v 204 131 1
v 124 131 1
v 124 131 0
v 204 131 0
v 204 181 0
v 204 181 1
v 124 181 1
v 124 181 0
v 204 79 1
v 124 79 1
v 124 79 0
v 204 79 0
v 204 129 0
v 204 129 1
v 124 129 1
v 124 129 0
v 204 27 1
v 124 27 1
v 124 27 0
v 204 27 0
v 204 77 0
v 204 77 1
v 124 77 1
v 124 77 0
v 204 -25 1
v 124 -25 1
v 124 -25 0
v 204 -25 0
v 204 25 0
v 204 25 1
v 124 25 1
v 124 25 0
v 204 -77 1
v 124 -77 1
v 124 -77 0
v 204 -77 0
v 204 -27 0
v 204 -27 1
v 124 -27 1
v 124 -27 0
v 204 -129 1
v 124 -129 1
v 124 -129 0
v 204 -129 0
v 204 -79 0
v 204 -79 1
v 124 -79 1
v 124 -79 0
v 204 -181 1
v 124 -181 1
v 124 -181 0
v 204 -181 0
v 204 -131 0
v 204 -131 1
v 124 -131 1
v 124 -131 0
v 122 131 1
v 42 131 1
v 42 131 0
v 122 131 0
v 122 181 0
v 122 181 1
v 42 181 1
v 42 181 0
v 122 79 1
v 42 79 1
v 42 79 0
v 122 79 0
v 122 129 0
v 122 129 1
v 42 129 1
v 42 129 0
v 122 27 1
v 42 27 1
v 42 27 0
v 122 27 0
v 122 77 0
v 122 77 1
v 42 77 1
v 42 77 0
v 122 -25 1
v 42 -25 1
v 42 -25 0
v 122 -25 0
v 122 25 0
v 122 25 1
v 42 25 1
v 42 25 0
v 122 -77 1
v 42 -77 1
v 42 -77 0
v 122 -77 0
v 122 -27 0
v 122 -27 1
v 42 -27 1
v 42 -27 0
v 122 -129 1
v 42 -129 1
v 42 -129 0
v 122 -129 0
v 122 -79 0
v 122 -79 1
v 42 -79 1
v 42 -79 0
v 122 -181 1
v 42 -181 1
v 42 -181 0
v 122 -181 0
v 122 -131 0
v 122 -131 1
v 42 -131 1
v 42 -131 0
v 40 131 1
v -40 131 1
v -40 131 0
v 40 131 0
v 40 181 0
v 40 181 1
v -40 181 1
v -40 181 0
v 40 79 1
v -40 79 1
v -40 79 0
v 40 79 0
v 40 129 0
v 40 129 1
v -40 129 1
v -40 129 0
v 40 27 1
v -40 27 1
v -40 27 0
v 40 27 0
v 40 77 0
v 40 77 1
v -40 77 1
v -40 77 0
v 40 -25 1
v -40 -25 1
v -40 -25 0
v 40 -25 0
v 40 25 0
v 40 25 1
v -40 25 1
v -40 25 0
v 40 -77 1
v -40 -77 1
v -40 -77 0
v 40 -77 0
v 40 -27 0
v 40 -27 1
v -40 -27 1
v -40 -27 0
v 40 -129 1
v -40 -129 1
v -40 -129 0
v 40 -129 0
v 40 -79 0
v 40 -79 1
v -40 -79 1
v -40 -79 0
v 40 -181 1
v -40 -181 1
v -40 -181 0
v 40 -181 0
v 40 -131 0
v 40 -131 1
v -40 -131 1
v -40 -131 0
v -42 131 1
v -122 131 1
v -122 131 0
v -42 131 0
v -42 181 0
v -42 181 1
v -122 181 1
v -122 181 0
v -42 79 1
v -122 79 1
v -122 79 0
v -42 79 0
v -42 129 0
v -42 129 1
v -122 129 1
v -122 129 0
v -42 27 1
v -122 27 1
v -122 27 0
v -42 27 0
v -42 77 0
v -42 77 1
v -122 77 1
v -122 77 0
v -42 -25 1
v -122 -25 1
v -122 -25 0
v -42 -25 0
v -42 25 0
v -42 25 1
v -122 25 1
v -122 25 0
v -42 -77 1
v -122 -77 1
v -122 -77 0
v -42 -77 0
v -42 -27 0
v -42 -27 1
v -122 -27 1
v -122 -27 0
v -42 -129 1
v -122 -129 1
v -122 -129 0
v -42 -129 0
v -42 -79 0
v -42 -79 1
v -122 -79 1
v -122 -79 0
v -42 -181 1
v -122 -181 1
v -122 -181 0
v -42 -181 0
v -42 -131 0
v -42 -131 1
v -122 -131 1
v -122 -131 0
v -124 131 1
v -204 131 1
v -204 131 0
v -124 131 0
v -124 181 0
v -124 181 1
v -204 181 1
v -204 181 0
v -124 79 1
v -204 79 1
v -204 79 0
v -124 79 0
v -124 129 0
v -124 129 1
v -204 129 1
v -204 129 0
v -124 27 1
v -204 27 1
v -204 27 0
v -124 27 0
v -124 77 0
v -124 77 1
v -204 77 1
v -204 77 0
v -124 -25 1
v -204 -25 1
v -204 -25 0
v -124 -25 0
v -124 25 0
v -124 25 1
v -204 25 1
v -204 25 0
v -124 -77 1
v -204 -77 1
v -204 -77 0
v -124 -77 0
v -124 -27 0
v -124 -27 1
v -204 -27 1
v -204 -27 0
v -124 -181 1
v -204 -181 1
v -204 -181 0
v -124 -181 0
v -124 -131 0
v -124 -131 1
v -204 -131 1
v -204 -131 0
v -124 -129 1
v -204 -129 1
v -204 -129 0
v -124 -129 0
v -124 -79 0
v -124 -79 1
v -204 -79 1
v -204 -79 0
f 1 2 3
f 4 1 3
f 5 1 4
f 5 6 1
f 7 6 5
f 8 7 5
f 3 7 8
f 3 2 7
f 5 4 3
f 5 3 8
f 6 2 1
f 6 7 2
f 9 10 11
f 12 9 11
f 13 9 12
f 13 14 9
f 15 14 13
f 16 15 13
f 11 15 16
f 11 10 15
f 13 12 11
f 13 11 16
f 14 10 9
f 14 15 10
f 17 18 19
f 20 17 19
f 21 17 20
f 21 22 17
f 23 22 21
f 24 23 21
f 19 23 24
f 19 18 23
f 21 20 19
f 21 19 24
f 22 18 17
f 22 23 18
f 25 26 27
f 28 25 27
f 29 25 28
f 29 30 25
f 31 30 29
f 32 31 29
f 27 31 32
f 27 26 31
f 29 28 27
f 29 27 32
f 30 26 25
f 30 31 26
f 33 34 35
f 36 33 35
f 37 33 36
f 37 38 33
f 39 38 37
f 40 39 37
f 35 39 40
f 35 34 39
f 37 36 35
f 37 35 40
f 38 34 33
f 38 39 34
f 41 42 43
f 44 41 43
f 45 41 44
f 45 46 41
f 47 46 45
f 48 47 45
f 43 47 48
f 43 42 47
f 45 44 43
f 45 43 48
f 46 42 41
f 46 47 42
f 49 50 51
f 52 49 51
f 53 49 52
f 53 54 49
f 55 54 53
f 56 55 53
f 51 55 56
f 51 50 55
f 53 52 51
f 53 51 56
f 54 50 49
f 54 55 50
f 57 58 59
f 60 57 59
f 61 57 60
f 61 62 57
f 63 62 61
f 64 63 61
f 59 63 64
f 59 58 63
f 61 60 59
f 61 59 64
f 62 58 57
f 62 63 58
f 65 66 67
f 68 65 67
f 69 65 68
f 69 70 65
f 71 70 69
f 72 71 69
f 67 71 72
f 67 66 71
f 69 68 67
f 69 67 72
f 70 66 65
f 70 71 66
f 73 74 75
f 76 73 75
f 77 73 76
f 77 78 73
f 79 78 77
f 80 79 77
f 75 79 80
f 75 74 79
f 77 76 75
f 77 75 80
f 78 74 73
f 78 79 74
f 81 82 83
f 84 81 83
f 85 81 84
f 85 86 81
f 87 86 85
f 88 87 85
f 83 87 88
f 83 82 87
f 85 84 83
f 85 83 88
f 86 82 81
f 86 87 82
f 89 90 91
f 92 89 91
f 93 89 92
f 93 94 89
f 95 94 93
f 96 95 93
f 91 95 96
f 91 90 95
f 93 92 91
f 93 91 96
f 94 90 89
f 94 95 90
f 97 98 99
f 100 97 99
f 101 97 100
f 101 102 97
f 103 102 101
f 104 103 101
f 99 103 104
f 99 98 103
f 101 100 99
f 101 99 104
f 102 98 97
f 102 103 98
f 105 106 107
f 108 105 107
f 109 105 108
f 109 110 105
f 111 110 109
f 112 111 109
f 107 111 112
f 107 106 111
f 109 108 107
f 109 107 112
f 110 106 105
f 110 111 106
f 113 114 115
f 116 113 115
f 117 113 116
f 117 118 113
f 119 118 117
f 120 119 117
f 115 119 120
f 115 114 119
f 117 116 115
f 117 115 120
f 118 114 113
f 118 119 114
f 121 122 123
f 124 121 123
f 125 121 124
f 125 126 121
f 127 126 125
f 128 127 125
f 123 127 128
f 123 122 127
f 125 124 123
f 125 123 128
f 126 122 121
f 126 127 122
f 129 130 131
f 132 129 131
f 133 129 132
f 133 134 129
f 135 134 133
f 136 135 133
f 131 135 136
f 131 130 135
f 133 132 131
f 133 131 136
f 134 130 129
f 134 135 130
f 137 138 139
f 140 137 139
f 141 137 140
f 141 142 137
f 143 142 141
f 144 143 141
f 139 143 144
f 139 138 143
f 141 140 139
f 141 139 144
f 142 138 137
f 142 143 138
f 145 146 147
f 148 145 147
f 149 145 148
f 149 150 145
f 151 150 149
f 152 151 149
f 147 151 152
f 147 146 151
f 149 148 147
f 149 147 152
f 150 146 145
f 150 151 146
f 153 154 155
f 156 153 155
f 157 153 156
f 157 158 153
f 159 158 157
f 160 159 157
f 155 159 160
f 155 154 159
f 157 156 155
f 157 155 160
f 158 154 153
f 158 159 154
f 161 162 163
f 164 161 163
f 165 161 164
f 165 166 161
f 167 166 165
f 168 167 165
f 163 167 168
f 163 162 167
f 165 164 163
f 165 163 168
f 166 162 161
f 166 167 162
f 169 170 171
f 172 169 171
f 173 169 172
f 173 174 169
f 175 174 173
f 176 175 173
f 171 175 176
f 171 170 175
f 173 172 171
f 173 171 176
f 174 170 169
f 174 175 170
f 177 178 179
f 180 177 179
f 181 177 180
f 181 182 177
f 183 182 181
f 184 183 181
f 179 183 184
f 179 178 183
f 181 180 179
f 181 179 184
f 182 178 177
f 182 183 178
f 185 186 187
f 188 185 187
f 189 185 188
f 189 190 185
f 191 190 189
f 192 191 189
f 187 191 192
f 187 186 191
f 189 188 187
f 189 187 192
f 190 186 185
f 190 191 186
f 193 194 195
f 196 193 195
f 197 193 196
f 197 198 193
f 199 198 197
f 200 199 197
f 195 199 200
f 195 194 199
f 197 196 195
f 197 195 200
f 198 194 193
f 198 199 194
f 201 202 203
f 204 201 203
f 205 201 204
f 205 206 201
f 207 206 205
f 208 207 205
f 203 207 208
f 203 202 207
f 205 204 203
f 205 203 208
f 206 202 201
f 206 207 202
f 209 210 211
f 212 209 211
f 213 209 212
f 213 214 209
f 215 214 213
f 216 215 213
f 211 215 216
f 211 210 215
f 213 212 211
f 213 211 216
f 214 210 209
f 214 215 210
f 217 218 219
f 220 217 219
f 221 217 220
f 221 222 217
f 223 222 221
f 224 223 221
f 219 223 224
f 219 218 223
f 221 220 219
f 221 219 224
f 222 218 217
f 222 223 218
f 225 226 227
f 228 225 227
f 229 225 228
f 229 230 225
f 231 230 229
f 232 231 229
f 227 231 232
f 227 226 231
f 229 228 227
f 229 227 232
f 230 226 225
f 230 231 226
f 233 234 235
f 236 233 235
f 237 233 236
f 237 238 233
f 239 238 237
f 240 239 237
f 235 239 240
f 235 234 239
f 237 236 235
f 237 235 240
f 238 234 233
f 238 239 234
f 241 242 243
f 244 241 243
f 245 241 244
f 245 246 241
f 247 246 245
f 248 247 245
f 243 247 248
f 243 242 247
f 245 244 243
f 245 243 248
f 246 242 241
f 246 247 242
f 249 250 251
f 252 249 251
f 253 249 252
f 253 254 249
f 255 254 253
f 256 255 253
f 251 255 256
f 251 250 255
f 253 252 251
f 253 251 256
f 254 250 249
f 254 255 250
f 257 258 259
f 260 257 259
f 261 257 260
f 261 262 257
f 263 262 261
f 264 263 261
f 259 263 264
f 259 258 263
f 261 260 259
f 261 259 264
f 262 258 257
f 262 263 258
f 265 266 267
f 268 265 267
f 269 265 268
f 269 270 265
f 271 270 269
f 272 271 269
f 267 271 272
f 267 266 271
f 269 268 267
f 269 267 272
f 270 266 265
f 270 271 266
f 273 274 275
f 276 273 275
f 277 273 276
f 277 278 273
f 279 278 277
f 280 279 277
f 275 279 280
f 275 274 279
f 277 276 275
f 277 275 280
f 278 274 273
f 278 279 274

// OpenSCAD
// Generated by Parametrix
ca_surface_faceSurface_000 = [ [ -204.0000, -181.0000 ],[ -124.0000, -181.0000 ],[ -124.0000, -131.0000 ],[ -204.0000, -131.0000 ],[ -204.0000, -181.0000 ] ];
cb_surface_faceSurface_000 = [  0, 1, 2, 3, 4 ];
ca_surface_faceSurface_001 = [ [ -204.0000, -129.0000 ],[ -124.0000, -129.0000 ],[ -124.0000, -79.0000 ],[ -204.0000, -79.0000 ],[ -204.0000, -129.0000 ] ];
cb_surface_faceSurface_001 = [  5, 6, 7, 8, 9 ];
ca_surface_faceSurface_002 = [ [ -204.0000, -77.0000 ],[ -124.0000, -77.0000 ],[ -124.0000, -27.0000 ],[ -204.0000, -27.0000 ],[ -204.0000, -77.0000 ] ];
cb_surface_faceSurface_002 = [  10, 11, 12, 13, 14 ];
ca_surface_faceSurface_003 = [ [ -204.0000, -25.0000 ],[ -124.0000, -25.0000 ],[ -124.0000, 25.0000 ],[ -204.0000, 25.0000 ],[ -204.0000, -25.0000 ] ];
cb_surface_faceSurface_003 = [  15, 16, 17, 18, 19 ];
ca_surface_faceSurface_004 = [ [ -204.0000, 27.0000 ],[ -124.0000, 27.0000 ],[ -124.0000, 77.0000 ],[ -204.0000, 77.0000 ],[ -204.0000, 27.0000 ] ];
cb_surface_faceSurface_004 = [  20, 21, 22, 23, 24 ];
ca_surface_faceSurface_005 = [ [ -204.0000, 79.0000 ],[ -124.0000, 79.0000 ],[ -124.0000, 129.0000 ],[ -204.0000, 129.0000 ],[ -204.0000, 79.0000 ] ];
cb_surface_faceSurface_005 = [  25, 26, 27, 28, 29 ];
ca_surface_faceSurface_006 = [ [ -204.0000, 131.0000 ],[ -124.0000, 131.0000 ],[ -124.0000, 181.0000 ],[ -204.0000, 181.0000 ],[ -204.0000, 131.0000 ] ];
cb_surface_faceSurface_006 = [  30, 31, 32, 33, 34 ];
ca_surface_faceSurface_007 = [ [ -122.0000, -181.0000 ],[ -42.0000, -181.0000 ],[ -42.0000, -131.0000 ],[ -122.0000, -131.0000 ],[ -122.0000, -181.0000 ] ];
cb_surface_faceSurface_007 = [  35, 36, 37, 38, 39 ];
ca_surface_faceSurface_008 = [ [ -122.0000, -129.0000 ],[ -42.0000, -129.0000 ],[ -42.0000, -79.0000 ],[ -122.0000, -79.0000 ],[ -122.0000, -129.0000 ] ];
cb_surface_faceSurface_008 = [  40, 41, 42, 43, 44 ];
ca_surface_faceSurface_009 = [ [ -122.0000, -77.0000 ],[ -42.0000, -77.0000 ],[ -42.0000, -27.0000 ],[ -122.0000, -27.0000 ],[ -122.0000, -77.0000 ] ];
cb_surface_faceSurface_009 = [  45, 46, 47, 48, 49 ];
ca_surface_faceSurface_010 = [ [ -122.0000, -25.0000 ],[ -42.0000, -25.0000 ],[ -42.0000, 25.0000 ],[ -122.0000, 25.0000 ],[ -122.0000, -25.0000 ] ];
cb_surface_faceSurface_010 = [  50, 51, 52, 53, 54 ];
ca_surface_faceSurface_011 = [ [ -122.0000, 27.0000 ],[ -42.0000, 27.0000 ],[ -42.0000, 77.0000 ],[ -122.0000, 77.0000 ],[ -122.0000, 27.0000 ] ];
cb_surface_faceSurface_011 = [  55, 56, 57, 58, 59 ];
ca_surface_faceSurface_012 = [ [ -122.0000, 79.0000 ],[ -42.0000, 79.0000 ],[ -42.0000, 129.0000 ],[ -122.0000, 129.0000 ],[ -122.0000, 79.0000 ] ];
cb_surface_faceSurface_012 = [  60, 61, 62, 63, 64 ];
ca_surface_faceSurface_013 = [ [ -122.0000, 131.0000 ],[ -42.0000, 131.0000 ],[ -42.0000, 181.0000 ],[ -122.0000, 181.0000 ],[ -122.0000, 131.0000 ] ];
cb_surface_faceSurface_013 = [  65, 66, 67, 68, 69 ];
ca_surface_faceSurface_014 = [ [ -40.0000, -181.0000 ],[ 40.0000, -181.0000 ],[ 40.0000, -131.0000 ],[ -40.0000, -131.0000 ],[ -40.0000, -181.0000 ] ];
cb_surface_faceSurface_014 = [  70, 71, 72, 73, 74 ];
ca_surface_faceSurface_015 = [ [ -40.0000, -129.0000 ],[ 40.0000, -129.0000 ],[ 40.0000, -79.0000 ],[ -40.0000, -79.0000 ],[ -40.0000, -129.0000 ] ];
cb_surface_faceSurface_015 = [  75, 76, 77, 78, 79 ];
ca_surface_faceSurface_016 = [ [ -40.0000, -77.0000 ],[ 40.0000, -77.0000 ],[ 40.0000, -27.0000 ],[ -40.0000, -27.0000 ],[ -40.0000, -77.0000 ] ];
cb_surface_faceSurface_016 = [  80, 81, 82, 83, 84 ];
ca_surface_faceSurface_017 = [ [ -40.0000, -25.0000 ],[ 40.0000, -25.0000 ],[ 40.0000, 25.0000 ],[ -40.0000, 25.0000 ],[ -40.0000, -25.0000 ] ];
cb_surface_faceSurface_017 = [  85, 86, 87, 88, 89 ];
ca_surface_faceSurface_018 = [ [ -40.0000, 27.0000 ],[ 40.0000, 27.0000 ],[ 40.0000, 77.0000 ],[ -40.0000, 77.0000 ],[ -40.0000, 27.0000 ] ];
cb_surface_faceSurface_018 = [  90, 91, 92, 93, 94 ];
ca_surface_faceSurface_019 = [ [ -40.0000, 79.0000 ],[ 40.0000, 79.0000 ],[ 40.0000, 129.0000 ],[ -40.0000, 129.0000 ],[ -40.0000, 79.0000 ] ];
cb_surface_faceSurface_019 = [  95, 96, 97, 98, 99 ];
ca_surface_faceSurface_020 = [ [ -40.0000, 131.0000 ],[ 40.0000, 131.0000 ],[ 40.0000, 181.0000 ],[ -40.0000, 181.0000 ],[ -40.0000, 131.0000 ] ];
cb_surface_faceSurface_020 = [  100, 101, 102, 103, 104 ];
ca_surface_faceSurface_021 = [ [ 42.0000, -181.0000 ],[ 122.0000, -181.0000 ],[ 122.0000, -131.0000 ],[ 42.0000, -131.0000 ],[ 42.0000, -181.0000 ] ];
cb_surface_faceSurface_021 = [  105, 106, 107, 108, 109 ];
ca_surface_faceSurface_022 = [ [ 42.0000, -129.0000 ],[ 122.0000, -129.0000 ],[ 122.0000, -79.0000 ],[ 42.0000, -79.0000 ],[ 42.0000, -129.0000 ] ];
cb_surface_faceSurface_022 = [  110, 111, 112, 113, 114 ];
ca_surface_faceSurface_023 = [ [ 42.0000, -77.0000 ],[ 122.0000, -77.0000 ],[ 122.0000, -27.0000 ],[ 42.0000, -27.0000 ],[ 42.0000, -77.0000 ] ];
cb_surface_faceSurface_023 = [  115, 116, 117, 118, 119 ];
ca_surface_faceSurface_024 = [ [ 42.0000, -25.0000 ],[ 122.0000, -25.0000 ],[ 122.0000, 25.0000 ],[ 42.0000, 25.0000 ],[ 42.0000, -25.0000 ] ];
cb_surface_faceSurface_024 = [  120, 121, 122, 123, 124 ];
ca_surface_faceSurface_025 = [ [ 42.0000, 27.0000 ],[ 122.0000, 27.0000 ],[ 122.0000, 77.0000 ],[ 42.0000, 77.0000 ],[ 42.0000, 27.0000 ] ];
cb_surface_faceSurface_025 = [  125, 126, 127, 128, 129 ];
ca_surface_faceSurface_026 = [ [ 42.0000, 79.0000 ],[ 122.0000, 79.0000 ],[ 122.0000, 129.0000 ],[ 42.0000, 129.0000 ],[ 42.0000, 79.0000 ] ];
cb_surface_faceSurface_026 = [  130, 131, 132, 133, 134 ];
ca_surface_faceSurface_027 = [ [ 42.0000, 131.0000 ],[ 122.0000, 131.0000 ],[ 122.0000, 181.0000 ],[ 42.0000, 181.0000 ],[ 42.0000, 131.0000 ] ];
cb_surface_faceSurface_027 = [  135, 136, 137, 138, 139 ];
ca_surface_faceSurface_028 = [ [ 124.0000, -181.0000 ],[ 204.0000, -181.0000 ],[ 204.0000, -131.0000 ],[ 124.0000, -131.0000 ],[ 124.0000, -181.0000 ] ];
cb_surface_faceSurface_028 = [  140, 141, 142, 143, 144 ];
ca_surface_faceSurface_029 = [ [ 124.0000, -129.0000 ],[ 204.0000, -129.0000 ],[ 204.0000, -79.0000 ],[ 124.0000, -79.0000 ],[ 124.0000, -129.0000 ] ];
cb_surface_faceSurface_029 = [  145, 146, 147, 148, 149 ];
ca_surface_faceSurface_030 = [ [ 124.0000, -77.0000 ],[ 204.0000, -77.0000 ],[ 204.0000, -27.0000 ],[ 124.0000, -27.0000 ],[ 124.0000, -77.0000 ] ];
cb_surface_faceSurface_030 = [  150, 151, 152, 153, 154 ];
ca_surface_faceSurface_031 = [ [ 124.0000, -25.0000 ],[ 204.0000, -25.0000 ],[ 204.0000, 25.0000 ],[ 124.0000, 25.0000 ],[ 124.0000, -25.0000 ] ];
cb_surface_faceSurface_031 = [  155, 156, 157, 158, 159 ];
ca_surface_faceSurface_032 = [ [ 124.0000, 27.0000 ],[ 204.0000, 27.0000 ],[ 204.0000, 77.0000 ],[ 124.0000, 77.0000 ],[ 124.0000, 27.0000 ] ];
cb_surface_faceSurface_032 = [  160, 161, 162, 163, 164 ];
ca_surface_faceSurface_033 = [ [ 124.0000, 79.0000 ],[ 204.0000, 79.0000 ],[ 204.0000, 129.0000 ],[ 124.0000, 129.0000 ],[ 124.0000, 79.0000 ] ];
cb_surface_faceSurface_033 = [  165, 166, 167, 168, 169 ];
ca_surface_faceSurface_034 = [ [ 124.0000, 131.0000 ],[ 204.0000, 131.0000 ],[ 204.0000, 181.0000 ],[ 124.0000, 181.0000 ],[ 124.0000, 131.0000 ] ];
cb_surface_faceSurface_034 = [  170, 171, 172, 173, 174 ];
a_surface_faceSurface = concat(ca_surface_faceSurface_000, ca_surface_faceSurface_001, ca_surface_faceSurface_002, ca_surface_faceSurface_003, ca_surface_faceSurface_004, ca_surface_faceSurface_005, ca_surface_faceSurface_006, ca_surface_faceSurface_007, ca_surface_faceSurface_008, ca_surface_faceSurface_009, ca_surface_faceSurface_010, ca_surface_faceSurface_011, ca_surface_faceSurface_012, ca_surface_faceSurface_013, ca_surface_faceSurface_014, ca_surface_faceSurface_015, ca_surface_faceSurface_016, ca_surface_faceSurface_017, ca_surface_faceSurface_018, ca_surface_faceSurface_019, ca_surface_faceSurface_020, ca_surface_faceSurface_021, ca_surface_faceSurface_022, ca_surface_faceSurface_023, ca_surface_faceSurface_024, ca_surface_faceSurface_025, ca_surface_faceSurface_026, ca_surface_faceSurface_027, ca_surface_faceSurface_028, ca_surface_faceSurface_029, ca_surface_faceSurface_030, ca_surface_faceSurface_031, ca_surface_faceSurface_032, ca_surface_faceSurface_033, ca_surface_faceSurface_034);
b_surface_faceSurface = [cb_surface_faceSurface_000, cb_surface_faceSurface_001, cb_surface_faceSurface_002, cb_surface_faceSurface_003, cb_surface_faceSurface_004, cb_surface_faceSurface_005, cb_surface_faceSurface_006, cb_surface_faceSurface_007, cb_surface_faceSurface_008, cb_surface_faceSurface_009, cb_surface_faceSurface_010, cb_surface_faceSurface_011, cb_surface_faceSurface_012, cb_surface_faceSurface_013, cb_surface_faceSurface_014, cb_surface_faceSurface_015, cb_surface_faceSurface_016, cb_surface_faceSurface_017, cb_surface_faceSurface_018, cb_surface_faceSurface_019, cb_surface_faceSurface_020, cb_surface_faceSurface_021, cb_surface_faceSurface_022, cb_surface_faceSurface_023, cb_surface_faceSurface_024, cb_surface_faceSurface_025, cb_surface_faceSurface_026, cb_surface_faceSurface_027, cb_surface_faceSurface_028, cb_surface_faceSurface_029, cb_surface_faceSurface_030, cb_surface_faceSurface_031, cb_surface_faceSurface_032, cb_surface_faceSurface_033, cb_surface_faceSurface_034];
ca_surface_faceOnePanel_000 = [ [ 0.0000, 0.0000 ],[ 80.0000, 0.0000 ],[ 80.0000, 50.0000 ],[ 0.0000, 50.0000 ],[ 0.0000, 0.0000 ] ];
cb_surface_faceOnePanel_000 = [  0, 1, 2, 3, 4 ];
a_surface_faceOnePanel = concat(ca_surface_faceOnePanel_000);
b_surface_faceOnePanel = [cb_surface_faceOnePanel_000];

module subpax_surface_panel_0 () {
	translate( [ -204, -181, 0 ])
		rotate( [ 0, 0, 0 ])
			   linear_extrude(height = 1) polygon(a_surface_faceOnePanel, b_surface_faceOnePanel);
}

module subpax_surface_panel_1 () {
	translate( [ -204, -129, 0 ])
		rotate( [ 0, 0, 0 ])
			   linear_extrude(height = 1) polygon(a_surface_faceOnePanel, b_surface_faceOnePanel);
}

module subpax_surface_panel_2 () {
	translate( [ -204, -77, 0 ])
		rotate( [ 0, 0, 0 ])
			   linear_extrude(height = 1) polygon(a_surface_faceOnePanel, b_surface_faceOnePanel);
}

module subpax_surface_panel_3 () {
	translate( [ -204, -25, 0 ])
		rotate( [ 0, 0, 0 ])
			   linear_extrude(height = 1) polygon(a_surface_faceOnePanel, b_surface_faceOnePanel);
}

module subpax_surface_panel_4 () {
	translate( [ -204, 27, 0 ])
		rotate( [ 0, 0, 0 ])
			   linear_extrude(height = 1) polygon(a_surface_faceOnePanel, b_surface_faceOnePanel);
}

module subpax_surface_panel_5 () {
	translate( [ -204, 79, 0 ])
		rotate( [ 0, 0, 0 ])
			   linear_extrude(height = 1) polygon(a_surface_faceOnePanel, b_surface_faceOnePanel);
}

module subpax_surface_panel_6 () {
	translate( [ -204, 131, 0 ])
		rotate( [ 0, 0, 0 ])
			   linear_extrude(height = 1) polygon(a_surface_faceOnePanel, b_surface_faceOnePanel);
}

module subpax_surface_panel_7 () {
	translate( [ -122, -181, 0 ])
		rotate( [ 0, 0, 0 ])
			   linear_extrude(height = 1) polygon(a_surface_faceOnePanel, b_surface_faceOnePanel);
}

module subpax_surface_panel_8 () {
	translate( [ -122, -129, 0 ])
		rotate( [ 0, 0, 0 ])
			   linear_extrude(height = 1) polygon(a_surface_faceOnePanel, b_surface_faceOnePanel);
}

module subpax_surface_panel_9 () {
	translate( [ -122, -77, 0 ])
		rotate( [ 0, 0, 0 ])
			   linear_extrude(height = 1) polygon(a_surface_faceOnePanel, b_surface_faceOnePanel);
}

module subpax_surface_panel_10 () {
	translate( [ -122, -25, 0 ])
		rotate( [ 0, 0, 0 ])
			   linear_extrude(height = 1) polygon(a_surface_faceOnePanel, b_surface_faceOnePanel);
}

module subpax_surface_panel_11 () {
	translate( [ -122, 27, 0 ])
		rotate( [ 0, 0, 0 ])
			   linear_extrude(height = 1) polygon(a_surface_faceOnePanel, b_surface_faceOnePanel);
}

module subpax_surface_panel_12 () {
	translate( [ -122, 79, 0 ])
		rotate( [ 0, 0, 0 ])
			   linear_extrude(height = 1) polygon(a_surface_faceOnePanel, b_surface_faceOnePanel);
}

module subpax_surface_panel_13 () {
	translate( [ -122, 131, 0 ])
		rotate( [ 0, 0, 0 ])
			   linear_extrude(height = 1) polygon(a_surface_faceOnePanel, b_surface_faceOnePanel);
}

module subpax_surface_panel_14 () {
	translate( [ -40, -181, 0 ])
		rotate( [ 0, 0, 0 ])
			   linear_extrude(height = 1) polygon(a_surface_faceOnePanel, b_surface_faceOnePanel);
}

module subpax_surface_panel_15 () {
	translate( [ -40, -129, 0 ])
		rotate( [ 0, 0, 0 ])
			   linear_extrude(height = 1) polygon(a_surface_faceOnePanel, b_surface_faceOnePanel);
}

module subpax_surface_panel_16 () {
	translate( [ -40, -77, 0 ])
		rotate( [ 0, 0, 0 ])
			   linear_extrude(height = 1) polygon(a_surface_faceOnePanel, b_surface_faceOnePanel);
}

module subpax_surface_panel_17 () {
	translate( [ -40, -25, 0 ])
		rotate( [ 0, 0, 0 ])
			   linear_extrude(height = 1) polygon(a_surface_faceOnePanel, b_surface_faceOnePanel);
}

module subpax_surface_panel_18 () {
	translate( [ -40, 27, 0 ])
		rotate( [ 0, 0, 0 ])
			   linear_extrude(height = 1) polygon(a_surface_faceOnePanel, b_surface_faceOnePanel);
}

module subpax_surface_panel_19 () {
	translate( [ -40, 79, 0 ])
		rotate( [ 0, 0, 0 ])
			   linear_extrude(height = 1) polygon(a_surface_faceOnePanel, b_surface_faceOnePanel);
}

module subpax_surface_panel_20 () {
	translate( [ -40, 131, 0 ])
		rotate( [ 0, 0, 0 ])
			   linear_extrude(height = 1) polygon(a_surface_faceOnePanel, b_surface_faceOnePanel);
}

module subpax_surface_panel_21 () {
	translate( [ 42, -181, 0 ])
		rotate( [ 0, 0, 0 ])
			   linear_extrude(height = 1) polygon(a_surface_faceOnePanel, b_surface_faceOnePanel);
}

module subpax_surface_panel_22 () {
	translate( [ 42, -129, 0 ])
		rotate( [ 0, 0, 0 ])
			   linear_extrude(height = 1) polygon(a_surface_faceOnePanel, b_surface_faceOnePanel);
}

module subpax_surface_panel_23 () {
	translate( [ 42, -77, 0 ])
		rotate( [ 0, 0, 0 ])
			   linear_extrude(height = 1) polygon(a_surface_faceOnePanel, b_surface_faceOnePanel);
}

module subpax_surface_panel_24 () {
	translate( [ 42, -25, 0 ])
		rotate( [ 0, 0, 0 ])
			   linear_extrude(height = 1) polygon(a_surface_faceOnePanel, b_surface_faceOnePanel);
}

module subpax_surface_panel_25 () {
	translate( [ 42, 27, 0 ])
		rotate( [ 0, 0, 0 ])
			   linear_extrude(height = 1) polygon(a_surface_faceOnePanel, b_surface_faceOnePanel);
}

module subpax_surface_panel_26 () {
	translate( [ 42, 79, 0 ])
		rotate( [ 0, 0, 0 ])
			   linear_extrude(height = 1) polygon(a_surface_faceOnePanel, b_surface_faceOnePanel);
}

module subpax_surface_panel_27 () {
	translate( [ 42, 131, 0 ])
		rotate( [ 0, 0, 0 ])
			   linear_extrude(height = 1) polygon(a_surface_faceOnePanel, b_surface_faceOnePanel);
}

module subpax_surface_panel_28 () {
	translate( [ 124, -181, 0 ])
		rotate( [ 0, 0, 0 ])
			   linear_extrude(height = 1) polygon(a_surface_faceOnePanel, b_surface_faceOnePanel);
}

module subpax_surface_panel_29 () {
	translate( [ 124, -129, 0 ])
		rotate( [ 0, 0, 0 ])
			   linear_extrude(height = 1) polygon(a_surface_faceOnePanel, b_surface_faceOnePanel);
}

module subpax_surface_panel_30 () {
	translate( [ 124, -77, 0 ])
		rotate( [ 0, 0, 0 ])
			   linear_extrude(height = 1) polygon(a_surface_faceOnePanel, b_surface_faceOnePanel);
}

module subpax_surface_panel_31 () {
	translate( [ 124, -25, 0 ])
		rotate( [ 0, 0, 0 ])
			   linear_extrude(height = 1) polygon(a_surface_faceOnePanel, b_surface_faceOnePanel);
}

module subpax_surface_panel_32 () {
	translate( [ 124, 27, 0 ])
		rotate( [ 0, 0, 0 ])
			   linear_extrude(height = 1) polygon(a_surface_faceOnePanel, b_surface_faceOnePanel);
}

module subpax_surface_panel_33 () {
	translate( [ 124, 79, 0 ])
		rotate( [ 0, 0, 0 ])
			   linear_extrude(height = 1) polygon(a_surface_faceOnePanel, b_surface_faceOnePanel);
}

module subpax_surface_panel_34 () {
	translate( [ 124, 131, 0 ])
		rotate( [ 0, 0, 0 ])
			   linear_extrude(height = 1) polygon(a_surface_faceOnePanel, b_surface_faceOnePanel);
}

module pax_surface () {
	union () {
		subpax_surface_panel_0();
subpax_surface_panel_1();
subpax_surface_panel_2();
subpax_surface_panel_3();
subpax_surface_panel_4();
subpax_surface_panel_5();
subpax_surface_panel_6();
subpax_surface_panel_7();
subpax_surface_panel_8();
subpax_surface_panel_9();
subpax_surface_panel_10();
subpax_surface_panel_11();
subpax_surface_panel_12();
subpax_surface_panel_13();
subpax_surface_panel_14();
subpax_surface_panel_15();
subpax_surface_panel_16();
subpax_surface_panel_17();
subpax_surface_panel_18();
subpax_surface_panel_19();
subpax_surface_panel_20();
subpax_surface_panel_21();
subpax_surface_panel_22();
subpax_surface_panel_23();
subpax_surface_panel_24();
subpax_surface_panel_25();
subpax_surface_panel_26();
subpax_surface_panel_27();
subpax_surface_panel_28();
subpax_surface_panel_29();
subpax_surface_panel_30();
subpax_surface_panel_31();
subpax_surface_panel_32();
subpax_surface_panel_33();
subpax_surface_panel_34();
	}
}

pax_surface();
